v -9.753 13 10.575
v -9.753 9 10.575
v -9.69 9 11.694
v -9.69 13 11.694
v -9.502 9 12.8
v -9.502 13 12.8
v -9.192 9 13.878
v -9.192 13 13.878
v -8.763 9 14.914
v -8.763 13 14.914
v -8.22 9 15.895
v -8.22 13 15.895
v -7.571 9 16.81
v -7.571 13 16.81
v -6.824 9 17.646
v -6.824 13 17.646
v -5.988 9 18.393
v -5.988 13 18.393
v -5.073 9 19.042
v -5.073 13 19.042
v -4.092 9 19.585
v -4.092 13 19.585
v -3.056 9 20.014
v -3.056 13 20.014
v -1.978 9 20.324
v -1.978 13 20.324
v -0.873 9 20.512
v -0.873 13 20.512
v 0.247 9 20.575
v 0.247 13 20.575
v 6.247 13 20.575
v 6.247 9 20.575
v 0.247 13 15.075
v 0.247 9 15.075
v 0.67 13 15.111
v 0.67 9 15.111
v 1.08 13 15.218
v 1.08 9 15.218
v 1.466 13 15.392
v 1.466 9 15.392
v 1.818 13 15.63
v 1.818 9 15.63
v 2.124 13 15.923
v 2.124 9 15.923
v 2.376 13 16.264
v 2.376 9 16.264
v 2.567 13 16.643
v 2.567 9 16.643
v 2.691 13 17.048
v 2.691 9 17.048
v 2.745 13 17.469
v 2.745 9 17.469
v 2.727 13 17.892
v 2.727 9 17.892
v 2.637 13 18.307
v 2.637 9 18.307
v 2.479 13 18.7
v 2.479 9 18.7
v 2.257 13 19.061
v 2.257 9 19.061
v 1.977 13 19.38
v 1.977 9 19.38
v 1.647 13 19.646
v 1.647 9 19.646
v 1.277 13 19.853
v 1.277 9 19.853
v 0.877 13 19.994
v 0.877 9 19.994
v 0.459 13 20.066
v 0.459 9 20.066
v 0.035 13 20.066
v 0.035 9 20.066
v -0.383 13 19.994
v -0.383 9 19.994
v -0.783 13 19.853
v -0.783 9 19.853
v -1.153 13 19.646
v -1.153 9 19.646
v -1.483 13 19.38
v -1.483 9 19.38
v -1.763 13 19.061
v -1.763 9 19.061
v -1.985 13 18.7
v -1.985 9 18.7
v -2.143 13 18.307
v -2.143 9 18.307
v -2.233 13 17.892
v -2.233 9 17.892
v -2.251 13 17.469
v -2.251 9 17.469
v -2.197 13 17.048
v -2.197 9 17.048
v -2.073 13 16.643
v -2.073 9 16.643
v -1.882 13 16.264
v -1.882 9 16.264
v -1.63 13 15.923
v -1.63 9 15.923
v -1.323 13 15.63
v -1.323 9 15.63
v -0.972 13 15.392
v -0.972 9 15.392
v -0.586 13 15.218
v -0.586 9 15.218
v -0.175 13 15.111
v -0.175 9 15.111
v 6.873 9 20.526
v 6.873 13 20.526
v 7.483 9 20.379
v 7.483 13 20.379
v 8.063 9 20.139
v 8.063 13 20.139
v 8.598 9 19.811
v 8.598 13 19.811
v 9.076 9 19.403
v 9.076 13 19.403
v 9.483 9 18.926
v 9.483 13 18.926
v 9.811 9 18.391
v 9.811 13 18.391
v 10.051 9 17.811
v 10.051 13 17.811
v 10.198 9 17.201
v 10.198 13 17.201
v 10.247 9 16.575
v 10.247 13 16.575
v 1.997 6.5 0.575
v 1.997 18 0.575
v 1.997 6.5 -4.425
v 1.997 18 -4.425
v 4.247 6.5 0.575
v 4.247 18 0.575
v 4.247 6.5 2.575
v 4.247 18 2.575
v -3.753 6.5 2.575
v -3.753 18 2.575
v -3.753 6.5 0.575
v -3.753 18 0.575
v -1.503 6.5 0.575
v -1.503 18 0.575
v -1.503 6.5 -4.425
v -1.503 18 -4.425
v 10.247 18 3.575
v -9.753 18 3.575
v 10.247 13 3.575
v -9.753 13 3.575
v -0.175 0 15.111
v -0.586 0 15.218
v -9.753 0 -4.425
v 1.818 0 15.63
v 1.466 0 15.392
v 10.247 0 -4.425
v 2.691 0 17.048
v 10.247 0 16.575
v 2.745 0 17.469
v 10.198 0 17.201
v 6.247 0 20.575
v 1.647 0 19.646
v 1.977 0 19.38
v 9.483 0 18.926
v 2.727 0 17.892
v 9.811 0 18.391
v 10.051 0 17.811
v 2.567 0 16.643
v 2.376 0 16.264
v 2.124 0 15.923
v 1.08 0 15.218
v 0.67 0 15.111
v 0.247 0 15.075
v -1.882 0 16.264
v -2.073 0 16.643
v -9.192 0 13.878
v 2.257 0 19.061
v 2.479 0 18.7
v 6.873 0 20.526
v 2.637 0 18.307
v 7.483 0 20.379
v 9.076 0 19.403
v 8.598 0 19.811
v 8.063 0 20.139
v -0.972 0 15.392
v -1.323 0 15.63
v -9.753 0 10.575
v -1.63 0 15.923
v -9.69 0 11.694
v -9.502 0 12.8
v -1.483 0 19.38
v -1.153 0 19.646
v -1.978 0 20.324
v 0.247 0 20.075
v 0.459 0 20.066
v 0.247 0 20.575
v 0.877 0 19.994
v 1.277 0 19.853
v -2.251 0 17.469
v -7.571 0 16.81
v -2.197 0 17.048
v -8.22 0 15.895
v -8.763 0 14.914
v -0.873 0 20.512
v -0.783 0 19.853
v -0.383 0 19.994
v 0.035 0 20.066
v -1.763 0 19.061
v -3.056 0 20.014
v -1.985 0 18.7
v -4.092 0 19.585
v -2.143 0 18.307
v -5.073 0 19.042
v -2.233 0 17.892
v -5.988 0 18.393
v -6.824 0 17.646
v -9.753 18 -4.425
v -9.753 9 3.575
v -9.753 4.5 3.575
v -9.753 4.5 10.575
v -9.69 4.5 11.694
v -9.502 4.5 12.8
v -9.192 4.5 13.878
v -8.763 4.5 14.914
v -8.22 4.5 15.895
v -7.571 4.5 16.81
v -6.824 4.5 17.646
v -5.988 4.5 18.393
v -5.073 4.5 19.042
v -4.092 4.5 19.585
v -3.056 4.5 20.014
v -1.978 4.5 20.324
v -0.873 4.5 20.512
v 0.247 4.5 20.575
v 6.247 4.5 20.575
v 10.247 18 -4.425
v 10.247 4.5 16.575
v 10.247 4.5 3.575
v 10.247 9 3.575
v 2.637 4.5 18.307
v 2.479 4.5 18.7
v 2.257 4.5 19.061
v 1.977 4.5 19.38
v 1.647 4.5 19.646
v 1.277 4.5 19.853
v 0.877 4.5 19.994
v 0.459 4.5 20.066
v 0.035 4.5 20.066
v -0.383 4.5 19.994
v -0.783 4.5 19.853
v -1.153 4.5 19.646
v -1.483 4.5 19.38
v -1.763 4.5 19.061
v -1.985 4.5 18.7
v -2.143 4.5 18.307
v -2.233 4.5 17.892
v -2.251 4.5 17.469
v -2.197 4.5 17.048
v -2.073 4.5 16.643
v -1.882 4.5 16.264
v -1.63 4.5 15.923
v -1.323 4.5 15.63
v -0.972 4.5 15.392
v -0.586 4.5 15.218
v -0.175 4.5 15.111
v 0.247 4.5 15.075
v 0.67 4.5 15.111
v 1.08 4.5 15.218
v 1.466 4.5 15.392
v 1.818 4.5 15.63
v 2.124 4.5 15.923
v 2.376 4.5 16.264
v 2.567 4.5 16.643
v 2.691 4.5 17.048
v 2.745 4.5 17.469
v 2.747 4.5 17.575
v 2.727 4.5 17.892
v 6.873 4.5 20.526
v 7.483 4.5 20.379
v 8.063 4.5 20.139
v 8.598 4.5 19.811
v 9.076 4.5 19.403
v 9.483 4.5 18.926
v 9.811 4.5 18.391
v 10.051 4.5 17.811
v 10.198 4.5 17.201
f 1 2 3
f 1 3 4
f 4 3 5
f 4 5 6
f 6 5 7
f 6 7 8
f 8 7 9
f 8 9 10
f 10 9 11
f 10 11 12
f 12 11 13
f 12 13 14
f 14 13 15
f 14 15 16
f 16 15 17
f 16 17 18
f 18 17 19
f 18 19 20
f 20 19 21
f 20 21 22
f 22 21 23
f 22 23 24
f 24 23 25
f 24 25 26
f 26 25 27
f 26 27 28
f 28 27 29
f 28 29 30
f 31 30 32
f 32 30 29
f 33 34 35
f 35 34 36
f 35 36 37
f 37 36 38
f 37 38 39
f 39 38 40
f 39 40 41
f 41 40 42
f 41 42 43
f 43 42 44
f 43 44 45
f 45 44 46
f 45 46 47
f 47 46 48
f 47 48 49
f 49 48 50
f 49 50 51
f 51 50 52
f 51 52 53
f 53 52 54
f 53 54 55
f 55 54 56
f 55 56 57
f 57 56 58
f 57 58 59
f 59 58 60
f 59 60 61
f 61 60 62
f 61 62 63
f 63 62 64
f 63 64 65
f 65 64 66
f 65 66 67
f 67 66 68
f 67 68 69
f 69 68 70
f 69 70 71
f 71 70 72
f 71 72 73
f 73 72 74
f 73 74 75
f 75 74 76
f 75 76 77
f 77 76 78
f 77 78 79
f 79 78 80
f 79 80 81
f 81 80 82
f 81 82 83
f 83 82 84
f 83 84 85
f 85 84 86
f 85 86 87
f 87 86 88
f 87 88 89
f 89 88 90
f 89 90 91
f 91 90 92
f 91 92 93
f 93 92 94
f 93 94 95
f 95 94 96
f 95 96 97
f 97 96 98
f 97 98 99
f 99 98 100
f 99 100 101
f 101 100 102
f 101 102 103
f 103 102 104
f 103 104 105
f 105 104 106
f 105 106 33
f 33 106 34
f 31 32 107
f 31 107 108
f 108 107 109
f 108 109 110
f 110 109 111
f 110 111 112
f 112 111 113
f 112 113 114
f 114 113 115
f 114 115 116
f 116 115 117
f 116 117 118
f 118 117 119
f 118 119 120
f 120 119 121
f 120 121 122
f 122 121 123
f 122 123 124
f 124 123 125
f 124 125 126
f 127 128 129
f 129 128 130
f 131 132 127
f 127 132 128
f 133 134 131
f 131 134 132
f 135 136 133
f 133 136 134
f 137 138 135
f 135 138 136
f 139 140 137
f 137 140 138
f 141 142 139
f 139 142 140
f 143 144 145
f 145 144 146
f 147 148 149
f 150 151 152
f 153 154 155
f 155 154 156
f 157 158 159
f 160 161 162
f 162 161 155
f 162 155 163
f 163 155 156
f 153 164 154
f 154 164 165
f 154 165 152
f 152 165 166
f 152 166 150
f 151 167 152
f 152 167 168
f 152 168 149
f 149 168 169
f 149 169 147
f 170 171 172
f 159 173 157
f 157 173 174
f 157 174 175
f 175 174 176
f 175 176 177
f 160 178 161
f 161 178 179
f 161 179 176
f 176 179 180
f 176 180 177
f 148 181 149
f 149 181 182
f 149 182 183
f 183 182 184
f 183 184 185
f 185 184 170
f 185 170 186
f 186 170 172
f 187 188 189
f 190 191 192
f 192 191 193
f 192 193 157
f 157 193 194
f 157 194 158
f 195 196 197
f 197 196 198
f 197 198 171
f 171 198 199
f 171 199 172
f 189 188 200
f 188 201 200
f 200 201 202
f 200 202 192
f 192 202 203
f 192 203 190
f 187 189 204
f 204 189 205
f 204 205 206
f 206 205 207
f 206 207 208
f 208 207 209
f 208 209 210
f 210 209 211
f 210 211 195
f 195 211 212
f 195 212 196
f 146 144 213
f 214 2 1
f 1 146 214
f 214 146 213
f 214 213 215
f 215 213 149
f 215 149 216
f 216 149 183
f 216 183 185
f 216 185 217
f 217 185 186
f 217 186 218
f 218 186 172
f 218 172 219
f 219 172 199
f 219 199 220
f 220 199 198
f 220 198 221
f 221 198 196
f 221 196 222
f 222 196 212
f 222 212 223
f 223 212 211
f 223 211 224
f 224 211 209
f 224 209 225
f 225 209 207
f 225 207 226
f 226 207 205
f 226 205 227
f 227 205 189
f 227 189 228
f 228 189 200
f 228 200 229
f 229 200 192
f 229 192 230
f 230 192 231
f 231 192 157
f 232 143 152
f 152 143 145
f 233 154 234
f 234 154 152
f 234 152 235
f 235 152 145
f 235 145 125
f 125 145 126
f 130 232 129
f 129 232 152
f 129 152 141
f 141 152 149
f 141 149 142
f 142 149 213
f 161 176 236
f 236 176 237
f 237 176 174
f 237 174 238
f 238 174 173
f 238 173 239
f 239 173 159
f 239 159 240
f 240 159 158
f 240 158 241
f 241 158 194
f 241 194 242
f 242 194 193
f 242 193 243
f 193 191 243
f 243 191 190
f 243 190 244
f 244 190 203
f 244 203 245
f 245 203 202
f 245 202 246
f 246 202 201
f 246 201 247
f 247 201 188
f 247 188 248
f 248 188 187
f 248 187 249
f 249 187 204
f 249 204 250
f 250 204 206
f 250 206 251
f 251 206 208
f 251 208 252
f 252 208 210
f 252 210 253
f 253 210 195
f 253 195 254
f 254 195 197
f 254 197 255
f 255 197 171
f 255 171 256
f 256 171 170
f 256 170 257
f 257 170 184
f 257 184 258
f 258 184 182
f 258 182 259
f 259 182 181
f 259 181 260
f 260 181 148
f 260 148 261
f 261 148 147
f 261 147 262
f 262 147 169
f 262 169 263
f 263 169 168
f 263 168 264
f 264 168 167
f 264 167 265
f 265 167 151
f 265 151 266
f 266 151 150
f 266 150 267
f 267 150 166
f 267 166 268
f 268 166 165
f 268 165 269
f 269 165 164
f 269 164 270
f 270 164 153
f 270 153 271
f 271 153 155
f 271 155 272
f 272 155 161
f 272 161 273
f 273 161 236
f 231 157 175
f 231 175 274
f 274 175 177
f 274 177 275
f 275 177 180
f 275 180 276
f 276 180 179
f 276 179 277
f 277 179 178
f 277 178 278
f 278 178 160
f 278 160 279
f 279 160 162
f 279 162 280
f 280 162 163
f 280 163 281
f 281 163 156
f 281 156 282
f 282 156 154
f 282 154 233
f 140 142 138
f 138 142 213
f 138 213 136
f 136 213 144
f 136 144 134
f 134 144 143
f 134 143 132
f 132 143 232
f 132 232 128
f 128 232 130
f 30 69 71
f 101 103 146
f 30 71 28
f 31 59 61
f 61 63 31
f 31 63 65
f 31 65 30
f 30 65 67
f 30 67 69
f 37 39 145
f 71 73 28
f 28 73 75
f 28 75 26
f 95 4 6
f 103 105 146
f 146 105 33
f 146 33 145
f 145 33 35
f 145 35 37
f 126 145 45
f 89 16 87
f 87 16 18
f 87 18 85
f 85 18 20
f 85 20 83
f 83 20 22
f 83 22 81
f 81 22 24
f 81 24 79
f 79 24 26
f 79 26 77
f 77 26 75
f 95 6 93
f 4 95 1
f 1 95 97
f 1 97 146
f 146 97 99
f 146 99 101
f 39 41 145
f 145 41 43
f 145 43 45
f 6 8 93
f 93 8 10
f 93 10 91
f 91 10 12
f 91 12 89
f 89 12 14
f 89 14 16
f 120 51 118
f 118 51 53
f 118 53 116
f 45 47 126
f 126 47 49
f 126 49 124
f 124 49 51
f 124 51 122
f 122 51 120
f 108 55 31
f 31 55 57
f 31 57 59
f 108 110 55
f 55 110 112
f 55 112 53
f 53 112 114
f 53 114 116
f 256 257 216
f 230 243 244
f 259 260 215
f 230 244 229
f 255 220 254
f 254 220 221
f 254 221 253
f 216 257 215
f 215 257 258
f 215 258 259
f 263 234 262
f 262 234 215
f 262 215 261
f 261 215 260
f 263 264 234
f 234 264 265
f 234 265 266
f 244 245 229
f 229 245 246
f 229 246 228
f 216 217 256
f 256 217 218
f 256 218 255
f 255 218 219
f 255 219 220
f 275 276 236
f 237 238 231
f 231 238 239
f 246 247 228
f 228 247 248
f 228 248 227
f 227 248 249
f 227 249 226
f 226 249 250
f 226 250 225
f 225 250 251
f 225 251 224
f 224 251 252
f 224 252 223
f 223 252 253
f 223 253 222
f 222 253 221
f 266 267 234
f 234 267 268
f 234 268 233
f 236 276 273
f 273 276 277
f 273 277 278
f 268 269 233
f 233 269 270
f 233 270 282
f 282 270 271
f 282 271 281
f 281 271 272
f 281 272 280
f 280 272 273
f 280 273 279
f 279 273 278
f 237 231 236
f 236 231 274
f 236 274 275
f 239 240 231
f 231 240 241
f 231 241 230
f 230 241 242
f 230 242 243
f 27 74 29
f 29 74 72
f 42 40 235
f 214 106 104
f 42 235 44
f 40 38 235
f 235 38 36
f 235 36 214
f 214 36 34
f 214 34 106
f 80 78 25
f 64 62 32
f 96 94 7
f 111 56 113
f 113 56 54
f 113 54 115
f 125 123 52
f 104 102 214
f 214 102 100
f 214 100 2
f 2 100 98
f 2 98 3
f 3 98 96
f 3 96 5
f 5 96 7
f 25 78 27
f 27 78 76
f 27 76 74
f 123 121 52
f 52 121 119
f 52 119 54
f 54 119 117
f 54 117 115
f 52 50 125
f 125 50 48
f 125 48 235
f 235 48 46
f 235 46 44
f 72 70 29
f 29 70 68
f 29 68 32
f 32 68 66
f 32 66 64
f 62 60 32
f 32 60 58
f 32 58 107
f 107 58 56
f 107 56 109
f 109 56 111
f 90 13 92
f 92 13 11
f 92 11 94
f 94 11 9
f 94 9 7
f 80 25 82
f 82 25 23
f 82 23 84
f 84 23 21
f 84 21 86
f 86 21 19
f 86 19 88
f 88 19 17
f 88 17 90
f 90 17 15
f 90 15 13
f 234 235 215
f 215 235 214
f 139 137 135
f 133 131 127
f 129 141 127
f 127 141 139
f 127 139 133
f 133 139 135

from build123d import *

# Parameters (mm, degrees)
CROQUIS1_R              = 2.5
SALIENTE_EXTRUIR1_DEPTH = 3
REDONDEO1_R             = 4
SALIENTE_EXTRUIR2_DEPTH = 15
CROQUIS3_W              = 9.109730849
CROQUIS3_H              = 7.453923598
SALIENTE_EXTRUIR3_DEPTH = 4
CROQUIS4_R              = 2.5
SALIENTE_EXTRUIR4_DEPTH = 13
CROQUIS5_W              = 20
CROQUIS5_H              = 4.5
CORTAR_EXTRUIR1_DEPTH   = 17
CORTAR_EXTRUIR2_DEPTH   = 6.5


with BuildPart() as part:
    # Croquis1 → Saliente-Extruir1 (new body)
    with BuildSketch(Plane(origin=(0, 0, 0), x_dir=(1, 0, 0), z_dir=(0, 1, 0))):
        with BuildLine():
            Line((-1.502919204, 4.425183821), (-1.502919204, -0.574816179))
            Line((-1.502919204, -0.574816179), (-3.752919204, -0.574816179))
            Line((-3.752919204, -0.574816179), (-3.752919204, -2.574816179))
            Line((-3.752919204, -2.574816179), (4.247080796, -2.574816179))
            Line((4.247080796, -2.574816179), (4.247080796, -0.574816179))
            Line((4.247080796, -0.574816179), (1.997080796, -0.574816179))
            Line((1.997080796, -0.574816179), (1.997080796, 4.425183821))
            Line((1.997080796, 4.425183821), (10.247080796, 4.425183821))
            Line((10.247080796, 4.425183821), (10.247080796, -9.382782341))
            Line((10.247080796, -9.382782341), (10.247080796, -20.574816179))
            Line((10.247080796, -20.574816179), (0.247080796, -20.574816179))
            ThreePointArc((0.247080796, -20.574816179), (-6.823987016, -17.645883991), (-9.752919204, -10.574816179))
            Line((-9.752919204, -10.574816179), (-9.752919204, 4.425183821))
            Line((-9.752919204, 4.425183821), (-1.502919204, 4.425183821))
        make_face()
        with Locations((0.247080796, -17.574816179)):
            Circle(CROQUIS1_R, mode=Mode.SUBTRACT)
    extrude(amount=SALIENTE_EXTRUIR1_DEPTH)

    # Redondeo1
    redondeo1_edges = [part.edges().sort_by_distance(p)[0] for p in [
        (10.247080796, 1.5, 20.574816179),
    ]]
    fillet(redondeo1_edges, radius=REDONDEO1_R)

    # Croquis2 → Saliente-Extruir2 (add)
    with BuildSketch(Plane(origin=(0, 3, 0), x_dir=(1, 0, 0), z_dir=(0, 1, 0))):
        Polygon((-9.752919204, -3.574816179), (10.247080796, -3.574816179), (10.247080796, 4.425183821), (1.997080796, 4.425183821), (1.997080796, -0.574816179), (4.247080796, -0.574816179), (4.247080796, -2.574816179), (-3.752919204, -2.574816179), (-3.752919204, -0.574816179), (-1.502919204, -0.574816179), (-1.502919204, 4.425183821), (-9.752919204, 4.425183821), align=None)
    extrude(amount=SALIENTE_EXTRUIR2_DEPTH)

    # Croquis3 → Saliente-Extruir3 (add)
    with BuildSketch(Plane.XZ):
        with Locations((0.202425252, -0.698222022)):
            Rectangle(CROQUIS3_W, CROQUIS3_H)
    extrude(amount=-SALIENTE_EXTRUIR3_DEPTH)

    # Croquis4 → Saliente-Extruir4 (add)
    with BuildSketch(Plane.XZ):
        with BuildLine():
            Line((-9.752919204, -4.425183821), (10.247080796, -4.425183821))
            Line((10.247080796, -4.425183821), (10.247080796, 16.574816179))
            ThreePointArc((10.247080796, 16.574816179), (9.075507921, 19.403243304), (6.247080796, 20.574816179))
            Line((6.247080796, 20.574816179), (0.247080796, 20.574816179))
            ThreePointArc((0.247080796, 20.574816179), (-6.823987016, 17.645883991), (-9.752919204, 10.574816179))
            Line((-9.752919204, 10.574816179), (-9.752919204, -4.425183821))
        make_face()
        with Locations((0.247080796, 17.574816179)):
            Circle(CROQUIS4_R, mode=Mode.SUBTRACT)
    extrude(amount=-SALIENTE_EXTRUIR4_DEPTH)

    # Croquis5 → Cortar-Extruir1 (cut)
    with BuildSketch(Plane.XY.offset(20.574816179)):
        with Locations((0.247080796, 6.75)):
            Rectangle(CROQUIS5_W, CROQUIS5_H)
    extrude(amount=-CORTAR_EXTRUIR1_DEPTH, mode=Mode.SUBTRACT)

    # Croquis6 → Cortar-Extruir2 (cut)
    with BuildSketch(Plane(origin=(0, 13, 0), x_dir=(1, 0, 0), z_dir=(0, 1, 0))):
        Polygon((-1.502919204, 4.425183821), (-1.502919204, -0.574816179), (-3.752919204, -0.574816179), (-3.752919204, -2.574816179), (4.247080796, -2.574816179), (4.247080796, -0.574816179), (1.997080796, -0.574816179), (1.997080796, 4.425183821), align=None)
    extrude(amount=-CORTAR_EXTRUIR2_DEPTH, mode=Mode.SUBTRACT)


solid = part.part
